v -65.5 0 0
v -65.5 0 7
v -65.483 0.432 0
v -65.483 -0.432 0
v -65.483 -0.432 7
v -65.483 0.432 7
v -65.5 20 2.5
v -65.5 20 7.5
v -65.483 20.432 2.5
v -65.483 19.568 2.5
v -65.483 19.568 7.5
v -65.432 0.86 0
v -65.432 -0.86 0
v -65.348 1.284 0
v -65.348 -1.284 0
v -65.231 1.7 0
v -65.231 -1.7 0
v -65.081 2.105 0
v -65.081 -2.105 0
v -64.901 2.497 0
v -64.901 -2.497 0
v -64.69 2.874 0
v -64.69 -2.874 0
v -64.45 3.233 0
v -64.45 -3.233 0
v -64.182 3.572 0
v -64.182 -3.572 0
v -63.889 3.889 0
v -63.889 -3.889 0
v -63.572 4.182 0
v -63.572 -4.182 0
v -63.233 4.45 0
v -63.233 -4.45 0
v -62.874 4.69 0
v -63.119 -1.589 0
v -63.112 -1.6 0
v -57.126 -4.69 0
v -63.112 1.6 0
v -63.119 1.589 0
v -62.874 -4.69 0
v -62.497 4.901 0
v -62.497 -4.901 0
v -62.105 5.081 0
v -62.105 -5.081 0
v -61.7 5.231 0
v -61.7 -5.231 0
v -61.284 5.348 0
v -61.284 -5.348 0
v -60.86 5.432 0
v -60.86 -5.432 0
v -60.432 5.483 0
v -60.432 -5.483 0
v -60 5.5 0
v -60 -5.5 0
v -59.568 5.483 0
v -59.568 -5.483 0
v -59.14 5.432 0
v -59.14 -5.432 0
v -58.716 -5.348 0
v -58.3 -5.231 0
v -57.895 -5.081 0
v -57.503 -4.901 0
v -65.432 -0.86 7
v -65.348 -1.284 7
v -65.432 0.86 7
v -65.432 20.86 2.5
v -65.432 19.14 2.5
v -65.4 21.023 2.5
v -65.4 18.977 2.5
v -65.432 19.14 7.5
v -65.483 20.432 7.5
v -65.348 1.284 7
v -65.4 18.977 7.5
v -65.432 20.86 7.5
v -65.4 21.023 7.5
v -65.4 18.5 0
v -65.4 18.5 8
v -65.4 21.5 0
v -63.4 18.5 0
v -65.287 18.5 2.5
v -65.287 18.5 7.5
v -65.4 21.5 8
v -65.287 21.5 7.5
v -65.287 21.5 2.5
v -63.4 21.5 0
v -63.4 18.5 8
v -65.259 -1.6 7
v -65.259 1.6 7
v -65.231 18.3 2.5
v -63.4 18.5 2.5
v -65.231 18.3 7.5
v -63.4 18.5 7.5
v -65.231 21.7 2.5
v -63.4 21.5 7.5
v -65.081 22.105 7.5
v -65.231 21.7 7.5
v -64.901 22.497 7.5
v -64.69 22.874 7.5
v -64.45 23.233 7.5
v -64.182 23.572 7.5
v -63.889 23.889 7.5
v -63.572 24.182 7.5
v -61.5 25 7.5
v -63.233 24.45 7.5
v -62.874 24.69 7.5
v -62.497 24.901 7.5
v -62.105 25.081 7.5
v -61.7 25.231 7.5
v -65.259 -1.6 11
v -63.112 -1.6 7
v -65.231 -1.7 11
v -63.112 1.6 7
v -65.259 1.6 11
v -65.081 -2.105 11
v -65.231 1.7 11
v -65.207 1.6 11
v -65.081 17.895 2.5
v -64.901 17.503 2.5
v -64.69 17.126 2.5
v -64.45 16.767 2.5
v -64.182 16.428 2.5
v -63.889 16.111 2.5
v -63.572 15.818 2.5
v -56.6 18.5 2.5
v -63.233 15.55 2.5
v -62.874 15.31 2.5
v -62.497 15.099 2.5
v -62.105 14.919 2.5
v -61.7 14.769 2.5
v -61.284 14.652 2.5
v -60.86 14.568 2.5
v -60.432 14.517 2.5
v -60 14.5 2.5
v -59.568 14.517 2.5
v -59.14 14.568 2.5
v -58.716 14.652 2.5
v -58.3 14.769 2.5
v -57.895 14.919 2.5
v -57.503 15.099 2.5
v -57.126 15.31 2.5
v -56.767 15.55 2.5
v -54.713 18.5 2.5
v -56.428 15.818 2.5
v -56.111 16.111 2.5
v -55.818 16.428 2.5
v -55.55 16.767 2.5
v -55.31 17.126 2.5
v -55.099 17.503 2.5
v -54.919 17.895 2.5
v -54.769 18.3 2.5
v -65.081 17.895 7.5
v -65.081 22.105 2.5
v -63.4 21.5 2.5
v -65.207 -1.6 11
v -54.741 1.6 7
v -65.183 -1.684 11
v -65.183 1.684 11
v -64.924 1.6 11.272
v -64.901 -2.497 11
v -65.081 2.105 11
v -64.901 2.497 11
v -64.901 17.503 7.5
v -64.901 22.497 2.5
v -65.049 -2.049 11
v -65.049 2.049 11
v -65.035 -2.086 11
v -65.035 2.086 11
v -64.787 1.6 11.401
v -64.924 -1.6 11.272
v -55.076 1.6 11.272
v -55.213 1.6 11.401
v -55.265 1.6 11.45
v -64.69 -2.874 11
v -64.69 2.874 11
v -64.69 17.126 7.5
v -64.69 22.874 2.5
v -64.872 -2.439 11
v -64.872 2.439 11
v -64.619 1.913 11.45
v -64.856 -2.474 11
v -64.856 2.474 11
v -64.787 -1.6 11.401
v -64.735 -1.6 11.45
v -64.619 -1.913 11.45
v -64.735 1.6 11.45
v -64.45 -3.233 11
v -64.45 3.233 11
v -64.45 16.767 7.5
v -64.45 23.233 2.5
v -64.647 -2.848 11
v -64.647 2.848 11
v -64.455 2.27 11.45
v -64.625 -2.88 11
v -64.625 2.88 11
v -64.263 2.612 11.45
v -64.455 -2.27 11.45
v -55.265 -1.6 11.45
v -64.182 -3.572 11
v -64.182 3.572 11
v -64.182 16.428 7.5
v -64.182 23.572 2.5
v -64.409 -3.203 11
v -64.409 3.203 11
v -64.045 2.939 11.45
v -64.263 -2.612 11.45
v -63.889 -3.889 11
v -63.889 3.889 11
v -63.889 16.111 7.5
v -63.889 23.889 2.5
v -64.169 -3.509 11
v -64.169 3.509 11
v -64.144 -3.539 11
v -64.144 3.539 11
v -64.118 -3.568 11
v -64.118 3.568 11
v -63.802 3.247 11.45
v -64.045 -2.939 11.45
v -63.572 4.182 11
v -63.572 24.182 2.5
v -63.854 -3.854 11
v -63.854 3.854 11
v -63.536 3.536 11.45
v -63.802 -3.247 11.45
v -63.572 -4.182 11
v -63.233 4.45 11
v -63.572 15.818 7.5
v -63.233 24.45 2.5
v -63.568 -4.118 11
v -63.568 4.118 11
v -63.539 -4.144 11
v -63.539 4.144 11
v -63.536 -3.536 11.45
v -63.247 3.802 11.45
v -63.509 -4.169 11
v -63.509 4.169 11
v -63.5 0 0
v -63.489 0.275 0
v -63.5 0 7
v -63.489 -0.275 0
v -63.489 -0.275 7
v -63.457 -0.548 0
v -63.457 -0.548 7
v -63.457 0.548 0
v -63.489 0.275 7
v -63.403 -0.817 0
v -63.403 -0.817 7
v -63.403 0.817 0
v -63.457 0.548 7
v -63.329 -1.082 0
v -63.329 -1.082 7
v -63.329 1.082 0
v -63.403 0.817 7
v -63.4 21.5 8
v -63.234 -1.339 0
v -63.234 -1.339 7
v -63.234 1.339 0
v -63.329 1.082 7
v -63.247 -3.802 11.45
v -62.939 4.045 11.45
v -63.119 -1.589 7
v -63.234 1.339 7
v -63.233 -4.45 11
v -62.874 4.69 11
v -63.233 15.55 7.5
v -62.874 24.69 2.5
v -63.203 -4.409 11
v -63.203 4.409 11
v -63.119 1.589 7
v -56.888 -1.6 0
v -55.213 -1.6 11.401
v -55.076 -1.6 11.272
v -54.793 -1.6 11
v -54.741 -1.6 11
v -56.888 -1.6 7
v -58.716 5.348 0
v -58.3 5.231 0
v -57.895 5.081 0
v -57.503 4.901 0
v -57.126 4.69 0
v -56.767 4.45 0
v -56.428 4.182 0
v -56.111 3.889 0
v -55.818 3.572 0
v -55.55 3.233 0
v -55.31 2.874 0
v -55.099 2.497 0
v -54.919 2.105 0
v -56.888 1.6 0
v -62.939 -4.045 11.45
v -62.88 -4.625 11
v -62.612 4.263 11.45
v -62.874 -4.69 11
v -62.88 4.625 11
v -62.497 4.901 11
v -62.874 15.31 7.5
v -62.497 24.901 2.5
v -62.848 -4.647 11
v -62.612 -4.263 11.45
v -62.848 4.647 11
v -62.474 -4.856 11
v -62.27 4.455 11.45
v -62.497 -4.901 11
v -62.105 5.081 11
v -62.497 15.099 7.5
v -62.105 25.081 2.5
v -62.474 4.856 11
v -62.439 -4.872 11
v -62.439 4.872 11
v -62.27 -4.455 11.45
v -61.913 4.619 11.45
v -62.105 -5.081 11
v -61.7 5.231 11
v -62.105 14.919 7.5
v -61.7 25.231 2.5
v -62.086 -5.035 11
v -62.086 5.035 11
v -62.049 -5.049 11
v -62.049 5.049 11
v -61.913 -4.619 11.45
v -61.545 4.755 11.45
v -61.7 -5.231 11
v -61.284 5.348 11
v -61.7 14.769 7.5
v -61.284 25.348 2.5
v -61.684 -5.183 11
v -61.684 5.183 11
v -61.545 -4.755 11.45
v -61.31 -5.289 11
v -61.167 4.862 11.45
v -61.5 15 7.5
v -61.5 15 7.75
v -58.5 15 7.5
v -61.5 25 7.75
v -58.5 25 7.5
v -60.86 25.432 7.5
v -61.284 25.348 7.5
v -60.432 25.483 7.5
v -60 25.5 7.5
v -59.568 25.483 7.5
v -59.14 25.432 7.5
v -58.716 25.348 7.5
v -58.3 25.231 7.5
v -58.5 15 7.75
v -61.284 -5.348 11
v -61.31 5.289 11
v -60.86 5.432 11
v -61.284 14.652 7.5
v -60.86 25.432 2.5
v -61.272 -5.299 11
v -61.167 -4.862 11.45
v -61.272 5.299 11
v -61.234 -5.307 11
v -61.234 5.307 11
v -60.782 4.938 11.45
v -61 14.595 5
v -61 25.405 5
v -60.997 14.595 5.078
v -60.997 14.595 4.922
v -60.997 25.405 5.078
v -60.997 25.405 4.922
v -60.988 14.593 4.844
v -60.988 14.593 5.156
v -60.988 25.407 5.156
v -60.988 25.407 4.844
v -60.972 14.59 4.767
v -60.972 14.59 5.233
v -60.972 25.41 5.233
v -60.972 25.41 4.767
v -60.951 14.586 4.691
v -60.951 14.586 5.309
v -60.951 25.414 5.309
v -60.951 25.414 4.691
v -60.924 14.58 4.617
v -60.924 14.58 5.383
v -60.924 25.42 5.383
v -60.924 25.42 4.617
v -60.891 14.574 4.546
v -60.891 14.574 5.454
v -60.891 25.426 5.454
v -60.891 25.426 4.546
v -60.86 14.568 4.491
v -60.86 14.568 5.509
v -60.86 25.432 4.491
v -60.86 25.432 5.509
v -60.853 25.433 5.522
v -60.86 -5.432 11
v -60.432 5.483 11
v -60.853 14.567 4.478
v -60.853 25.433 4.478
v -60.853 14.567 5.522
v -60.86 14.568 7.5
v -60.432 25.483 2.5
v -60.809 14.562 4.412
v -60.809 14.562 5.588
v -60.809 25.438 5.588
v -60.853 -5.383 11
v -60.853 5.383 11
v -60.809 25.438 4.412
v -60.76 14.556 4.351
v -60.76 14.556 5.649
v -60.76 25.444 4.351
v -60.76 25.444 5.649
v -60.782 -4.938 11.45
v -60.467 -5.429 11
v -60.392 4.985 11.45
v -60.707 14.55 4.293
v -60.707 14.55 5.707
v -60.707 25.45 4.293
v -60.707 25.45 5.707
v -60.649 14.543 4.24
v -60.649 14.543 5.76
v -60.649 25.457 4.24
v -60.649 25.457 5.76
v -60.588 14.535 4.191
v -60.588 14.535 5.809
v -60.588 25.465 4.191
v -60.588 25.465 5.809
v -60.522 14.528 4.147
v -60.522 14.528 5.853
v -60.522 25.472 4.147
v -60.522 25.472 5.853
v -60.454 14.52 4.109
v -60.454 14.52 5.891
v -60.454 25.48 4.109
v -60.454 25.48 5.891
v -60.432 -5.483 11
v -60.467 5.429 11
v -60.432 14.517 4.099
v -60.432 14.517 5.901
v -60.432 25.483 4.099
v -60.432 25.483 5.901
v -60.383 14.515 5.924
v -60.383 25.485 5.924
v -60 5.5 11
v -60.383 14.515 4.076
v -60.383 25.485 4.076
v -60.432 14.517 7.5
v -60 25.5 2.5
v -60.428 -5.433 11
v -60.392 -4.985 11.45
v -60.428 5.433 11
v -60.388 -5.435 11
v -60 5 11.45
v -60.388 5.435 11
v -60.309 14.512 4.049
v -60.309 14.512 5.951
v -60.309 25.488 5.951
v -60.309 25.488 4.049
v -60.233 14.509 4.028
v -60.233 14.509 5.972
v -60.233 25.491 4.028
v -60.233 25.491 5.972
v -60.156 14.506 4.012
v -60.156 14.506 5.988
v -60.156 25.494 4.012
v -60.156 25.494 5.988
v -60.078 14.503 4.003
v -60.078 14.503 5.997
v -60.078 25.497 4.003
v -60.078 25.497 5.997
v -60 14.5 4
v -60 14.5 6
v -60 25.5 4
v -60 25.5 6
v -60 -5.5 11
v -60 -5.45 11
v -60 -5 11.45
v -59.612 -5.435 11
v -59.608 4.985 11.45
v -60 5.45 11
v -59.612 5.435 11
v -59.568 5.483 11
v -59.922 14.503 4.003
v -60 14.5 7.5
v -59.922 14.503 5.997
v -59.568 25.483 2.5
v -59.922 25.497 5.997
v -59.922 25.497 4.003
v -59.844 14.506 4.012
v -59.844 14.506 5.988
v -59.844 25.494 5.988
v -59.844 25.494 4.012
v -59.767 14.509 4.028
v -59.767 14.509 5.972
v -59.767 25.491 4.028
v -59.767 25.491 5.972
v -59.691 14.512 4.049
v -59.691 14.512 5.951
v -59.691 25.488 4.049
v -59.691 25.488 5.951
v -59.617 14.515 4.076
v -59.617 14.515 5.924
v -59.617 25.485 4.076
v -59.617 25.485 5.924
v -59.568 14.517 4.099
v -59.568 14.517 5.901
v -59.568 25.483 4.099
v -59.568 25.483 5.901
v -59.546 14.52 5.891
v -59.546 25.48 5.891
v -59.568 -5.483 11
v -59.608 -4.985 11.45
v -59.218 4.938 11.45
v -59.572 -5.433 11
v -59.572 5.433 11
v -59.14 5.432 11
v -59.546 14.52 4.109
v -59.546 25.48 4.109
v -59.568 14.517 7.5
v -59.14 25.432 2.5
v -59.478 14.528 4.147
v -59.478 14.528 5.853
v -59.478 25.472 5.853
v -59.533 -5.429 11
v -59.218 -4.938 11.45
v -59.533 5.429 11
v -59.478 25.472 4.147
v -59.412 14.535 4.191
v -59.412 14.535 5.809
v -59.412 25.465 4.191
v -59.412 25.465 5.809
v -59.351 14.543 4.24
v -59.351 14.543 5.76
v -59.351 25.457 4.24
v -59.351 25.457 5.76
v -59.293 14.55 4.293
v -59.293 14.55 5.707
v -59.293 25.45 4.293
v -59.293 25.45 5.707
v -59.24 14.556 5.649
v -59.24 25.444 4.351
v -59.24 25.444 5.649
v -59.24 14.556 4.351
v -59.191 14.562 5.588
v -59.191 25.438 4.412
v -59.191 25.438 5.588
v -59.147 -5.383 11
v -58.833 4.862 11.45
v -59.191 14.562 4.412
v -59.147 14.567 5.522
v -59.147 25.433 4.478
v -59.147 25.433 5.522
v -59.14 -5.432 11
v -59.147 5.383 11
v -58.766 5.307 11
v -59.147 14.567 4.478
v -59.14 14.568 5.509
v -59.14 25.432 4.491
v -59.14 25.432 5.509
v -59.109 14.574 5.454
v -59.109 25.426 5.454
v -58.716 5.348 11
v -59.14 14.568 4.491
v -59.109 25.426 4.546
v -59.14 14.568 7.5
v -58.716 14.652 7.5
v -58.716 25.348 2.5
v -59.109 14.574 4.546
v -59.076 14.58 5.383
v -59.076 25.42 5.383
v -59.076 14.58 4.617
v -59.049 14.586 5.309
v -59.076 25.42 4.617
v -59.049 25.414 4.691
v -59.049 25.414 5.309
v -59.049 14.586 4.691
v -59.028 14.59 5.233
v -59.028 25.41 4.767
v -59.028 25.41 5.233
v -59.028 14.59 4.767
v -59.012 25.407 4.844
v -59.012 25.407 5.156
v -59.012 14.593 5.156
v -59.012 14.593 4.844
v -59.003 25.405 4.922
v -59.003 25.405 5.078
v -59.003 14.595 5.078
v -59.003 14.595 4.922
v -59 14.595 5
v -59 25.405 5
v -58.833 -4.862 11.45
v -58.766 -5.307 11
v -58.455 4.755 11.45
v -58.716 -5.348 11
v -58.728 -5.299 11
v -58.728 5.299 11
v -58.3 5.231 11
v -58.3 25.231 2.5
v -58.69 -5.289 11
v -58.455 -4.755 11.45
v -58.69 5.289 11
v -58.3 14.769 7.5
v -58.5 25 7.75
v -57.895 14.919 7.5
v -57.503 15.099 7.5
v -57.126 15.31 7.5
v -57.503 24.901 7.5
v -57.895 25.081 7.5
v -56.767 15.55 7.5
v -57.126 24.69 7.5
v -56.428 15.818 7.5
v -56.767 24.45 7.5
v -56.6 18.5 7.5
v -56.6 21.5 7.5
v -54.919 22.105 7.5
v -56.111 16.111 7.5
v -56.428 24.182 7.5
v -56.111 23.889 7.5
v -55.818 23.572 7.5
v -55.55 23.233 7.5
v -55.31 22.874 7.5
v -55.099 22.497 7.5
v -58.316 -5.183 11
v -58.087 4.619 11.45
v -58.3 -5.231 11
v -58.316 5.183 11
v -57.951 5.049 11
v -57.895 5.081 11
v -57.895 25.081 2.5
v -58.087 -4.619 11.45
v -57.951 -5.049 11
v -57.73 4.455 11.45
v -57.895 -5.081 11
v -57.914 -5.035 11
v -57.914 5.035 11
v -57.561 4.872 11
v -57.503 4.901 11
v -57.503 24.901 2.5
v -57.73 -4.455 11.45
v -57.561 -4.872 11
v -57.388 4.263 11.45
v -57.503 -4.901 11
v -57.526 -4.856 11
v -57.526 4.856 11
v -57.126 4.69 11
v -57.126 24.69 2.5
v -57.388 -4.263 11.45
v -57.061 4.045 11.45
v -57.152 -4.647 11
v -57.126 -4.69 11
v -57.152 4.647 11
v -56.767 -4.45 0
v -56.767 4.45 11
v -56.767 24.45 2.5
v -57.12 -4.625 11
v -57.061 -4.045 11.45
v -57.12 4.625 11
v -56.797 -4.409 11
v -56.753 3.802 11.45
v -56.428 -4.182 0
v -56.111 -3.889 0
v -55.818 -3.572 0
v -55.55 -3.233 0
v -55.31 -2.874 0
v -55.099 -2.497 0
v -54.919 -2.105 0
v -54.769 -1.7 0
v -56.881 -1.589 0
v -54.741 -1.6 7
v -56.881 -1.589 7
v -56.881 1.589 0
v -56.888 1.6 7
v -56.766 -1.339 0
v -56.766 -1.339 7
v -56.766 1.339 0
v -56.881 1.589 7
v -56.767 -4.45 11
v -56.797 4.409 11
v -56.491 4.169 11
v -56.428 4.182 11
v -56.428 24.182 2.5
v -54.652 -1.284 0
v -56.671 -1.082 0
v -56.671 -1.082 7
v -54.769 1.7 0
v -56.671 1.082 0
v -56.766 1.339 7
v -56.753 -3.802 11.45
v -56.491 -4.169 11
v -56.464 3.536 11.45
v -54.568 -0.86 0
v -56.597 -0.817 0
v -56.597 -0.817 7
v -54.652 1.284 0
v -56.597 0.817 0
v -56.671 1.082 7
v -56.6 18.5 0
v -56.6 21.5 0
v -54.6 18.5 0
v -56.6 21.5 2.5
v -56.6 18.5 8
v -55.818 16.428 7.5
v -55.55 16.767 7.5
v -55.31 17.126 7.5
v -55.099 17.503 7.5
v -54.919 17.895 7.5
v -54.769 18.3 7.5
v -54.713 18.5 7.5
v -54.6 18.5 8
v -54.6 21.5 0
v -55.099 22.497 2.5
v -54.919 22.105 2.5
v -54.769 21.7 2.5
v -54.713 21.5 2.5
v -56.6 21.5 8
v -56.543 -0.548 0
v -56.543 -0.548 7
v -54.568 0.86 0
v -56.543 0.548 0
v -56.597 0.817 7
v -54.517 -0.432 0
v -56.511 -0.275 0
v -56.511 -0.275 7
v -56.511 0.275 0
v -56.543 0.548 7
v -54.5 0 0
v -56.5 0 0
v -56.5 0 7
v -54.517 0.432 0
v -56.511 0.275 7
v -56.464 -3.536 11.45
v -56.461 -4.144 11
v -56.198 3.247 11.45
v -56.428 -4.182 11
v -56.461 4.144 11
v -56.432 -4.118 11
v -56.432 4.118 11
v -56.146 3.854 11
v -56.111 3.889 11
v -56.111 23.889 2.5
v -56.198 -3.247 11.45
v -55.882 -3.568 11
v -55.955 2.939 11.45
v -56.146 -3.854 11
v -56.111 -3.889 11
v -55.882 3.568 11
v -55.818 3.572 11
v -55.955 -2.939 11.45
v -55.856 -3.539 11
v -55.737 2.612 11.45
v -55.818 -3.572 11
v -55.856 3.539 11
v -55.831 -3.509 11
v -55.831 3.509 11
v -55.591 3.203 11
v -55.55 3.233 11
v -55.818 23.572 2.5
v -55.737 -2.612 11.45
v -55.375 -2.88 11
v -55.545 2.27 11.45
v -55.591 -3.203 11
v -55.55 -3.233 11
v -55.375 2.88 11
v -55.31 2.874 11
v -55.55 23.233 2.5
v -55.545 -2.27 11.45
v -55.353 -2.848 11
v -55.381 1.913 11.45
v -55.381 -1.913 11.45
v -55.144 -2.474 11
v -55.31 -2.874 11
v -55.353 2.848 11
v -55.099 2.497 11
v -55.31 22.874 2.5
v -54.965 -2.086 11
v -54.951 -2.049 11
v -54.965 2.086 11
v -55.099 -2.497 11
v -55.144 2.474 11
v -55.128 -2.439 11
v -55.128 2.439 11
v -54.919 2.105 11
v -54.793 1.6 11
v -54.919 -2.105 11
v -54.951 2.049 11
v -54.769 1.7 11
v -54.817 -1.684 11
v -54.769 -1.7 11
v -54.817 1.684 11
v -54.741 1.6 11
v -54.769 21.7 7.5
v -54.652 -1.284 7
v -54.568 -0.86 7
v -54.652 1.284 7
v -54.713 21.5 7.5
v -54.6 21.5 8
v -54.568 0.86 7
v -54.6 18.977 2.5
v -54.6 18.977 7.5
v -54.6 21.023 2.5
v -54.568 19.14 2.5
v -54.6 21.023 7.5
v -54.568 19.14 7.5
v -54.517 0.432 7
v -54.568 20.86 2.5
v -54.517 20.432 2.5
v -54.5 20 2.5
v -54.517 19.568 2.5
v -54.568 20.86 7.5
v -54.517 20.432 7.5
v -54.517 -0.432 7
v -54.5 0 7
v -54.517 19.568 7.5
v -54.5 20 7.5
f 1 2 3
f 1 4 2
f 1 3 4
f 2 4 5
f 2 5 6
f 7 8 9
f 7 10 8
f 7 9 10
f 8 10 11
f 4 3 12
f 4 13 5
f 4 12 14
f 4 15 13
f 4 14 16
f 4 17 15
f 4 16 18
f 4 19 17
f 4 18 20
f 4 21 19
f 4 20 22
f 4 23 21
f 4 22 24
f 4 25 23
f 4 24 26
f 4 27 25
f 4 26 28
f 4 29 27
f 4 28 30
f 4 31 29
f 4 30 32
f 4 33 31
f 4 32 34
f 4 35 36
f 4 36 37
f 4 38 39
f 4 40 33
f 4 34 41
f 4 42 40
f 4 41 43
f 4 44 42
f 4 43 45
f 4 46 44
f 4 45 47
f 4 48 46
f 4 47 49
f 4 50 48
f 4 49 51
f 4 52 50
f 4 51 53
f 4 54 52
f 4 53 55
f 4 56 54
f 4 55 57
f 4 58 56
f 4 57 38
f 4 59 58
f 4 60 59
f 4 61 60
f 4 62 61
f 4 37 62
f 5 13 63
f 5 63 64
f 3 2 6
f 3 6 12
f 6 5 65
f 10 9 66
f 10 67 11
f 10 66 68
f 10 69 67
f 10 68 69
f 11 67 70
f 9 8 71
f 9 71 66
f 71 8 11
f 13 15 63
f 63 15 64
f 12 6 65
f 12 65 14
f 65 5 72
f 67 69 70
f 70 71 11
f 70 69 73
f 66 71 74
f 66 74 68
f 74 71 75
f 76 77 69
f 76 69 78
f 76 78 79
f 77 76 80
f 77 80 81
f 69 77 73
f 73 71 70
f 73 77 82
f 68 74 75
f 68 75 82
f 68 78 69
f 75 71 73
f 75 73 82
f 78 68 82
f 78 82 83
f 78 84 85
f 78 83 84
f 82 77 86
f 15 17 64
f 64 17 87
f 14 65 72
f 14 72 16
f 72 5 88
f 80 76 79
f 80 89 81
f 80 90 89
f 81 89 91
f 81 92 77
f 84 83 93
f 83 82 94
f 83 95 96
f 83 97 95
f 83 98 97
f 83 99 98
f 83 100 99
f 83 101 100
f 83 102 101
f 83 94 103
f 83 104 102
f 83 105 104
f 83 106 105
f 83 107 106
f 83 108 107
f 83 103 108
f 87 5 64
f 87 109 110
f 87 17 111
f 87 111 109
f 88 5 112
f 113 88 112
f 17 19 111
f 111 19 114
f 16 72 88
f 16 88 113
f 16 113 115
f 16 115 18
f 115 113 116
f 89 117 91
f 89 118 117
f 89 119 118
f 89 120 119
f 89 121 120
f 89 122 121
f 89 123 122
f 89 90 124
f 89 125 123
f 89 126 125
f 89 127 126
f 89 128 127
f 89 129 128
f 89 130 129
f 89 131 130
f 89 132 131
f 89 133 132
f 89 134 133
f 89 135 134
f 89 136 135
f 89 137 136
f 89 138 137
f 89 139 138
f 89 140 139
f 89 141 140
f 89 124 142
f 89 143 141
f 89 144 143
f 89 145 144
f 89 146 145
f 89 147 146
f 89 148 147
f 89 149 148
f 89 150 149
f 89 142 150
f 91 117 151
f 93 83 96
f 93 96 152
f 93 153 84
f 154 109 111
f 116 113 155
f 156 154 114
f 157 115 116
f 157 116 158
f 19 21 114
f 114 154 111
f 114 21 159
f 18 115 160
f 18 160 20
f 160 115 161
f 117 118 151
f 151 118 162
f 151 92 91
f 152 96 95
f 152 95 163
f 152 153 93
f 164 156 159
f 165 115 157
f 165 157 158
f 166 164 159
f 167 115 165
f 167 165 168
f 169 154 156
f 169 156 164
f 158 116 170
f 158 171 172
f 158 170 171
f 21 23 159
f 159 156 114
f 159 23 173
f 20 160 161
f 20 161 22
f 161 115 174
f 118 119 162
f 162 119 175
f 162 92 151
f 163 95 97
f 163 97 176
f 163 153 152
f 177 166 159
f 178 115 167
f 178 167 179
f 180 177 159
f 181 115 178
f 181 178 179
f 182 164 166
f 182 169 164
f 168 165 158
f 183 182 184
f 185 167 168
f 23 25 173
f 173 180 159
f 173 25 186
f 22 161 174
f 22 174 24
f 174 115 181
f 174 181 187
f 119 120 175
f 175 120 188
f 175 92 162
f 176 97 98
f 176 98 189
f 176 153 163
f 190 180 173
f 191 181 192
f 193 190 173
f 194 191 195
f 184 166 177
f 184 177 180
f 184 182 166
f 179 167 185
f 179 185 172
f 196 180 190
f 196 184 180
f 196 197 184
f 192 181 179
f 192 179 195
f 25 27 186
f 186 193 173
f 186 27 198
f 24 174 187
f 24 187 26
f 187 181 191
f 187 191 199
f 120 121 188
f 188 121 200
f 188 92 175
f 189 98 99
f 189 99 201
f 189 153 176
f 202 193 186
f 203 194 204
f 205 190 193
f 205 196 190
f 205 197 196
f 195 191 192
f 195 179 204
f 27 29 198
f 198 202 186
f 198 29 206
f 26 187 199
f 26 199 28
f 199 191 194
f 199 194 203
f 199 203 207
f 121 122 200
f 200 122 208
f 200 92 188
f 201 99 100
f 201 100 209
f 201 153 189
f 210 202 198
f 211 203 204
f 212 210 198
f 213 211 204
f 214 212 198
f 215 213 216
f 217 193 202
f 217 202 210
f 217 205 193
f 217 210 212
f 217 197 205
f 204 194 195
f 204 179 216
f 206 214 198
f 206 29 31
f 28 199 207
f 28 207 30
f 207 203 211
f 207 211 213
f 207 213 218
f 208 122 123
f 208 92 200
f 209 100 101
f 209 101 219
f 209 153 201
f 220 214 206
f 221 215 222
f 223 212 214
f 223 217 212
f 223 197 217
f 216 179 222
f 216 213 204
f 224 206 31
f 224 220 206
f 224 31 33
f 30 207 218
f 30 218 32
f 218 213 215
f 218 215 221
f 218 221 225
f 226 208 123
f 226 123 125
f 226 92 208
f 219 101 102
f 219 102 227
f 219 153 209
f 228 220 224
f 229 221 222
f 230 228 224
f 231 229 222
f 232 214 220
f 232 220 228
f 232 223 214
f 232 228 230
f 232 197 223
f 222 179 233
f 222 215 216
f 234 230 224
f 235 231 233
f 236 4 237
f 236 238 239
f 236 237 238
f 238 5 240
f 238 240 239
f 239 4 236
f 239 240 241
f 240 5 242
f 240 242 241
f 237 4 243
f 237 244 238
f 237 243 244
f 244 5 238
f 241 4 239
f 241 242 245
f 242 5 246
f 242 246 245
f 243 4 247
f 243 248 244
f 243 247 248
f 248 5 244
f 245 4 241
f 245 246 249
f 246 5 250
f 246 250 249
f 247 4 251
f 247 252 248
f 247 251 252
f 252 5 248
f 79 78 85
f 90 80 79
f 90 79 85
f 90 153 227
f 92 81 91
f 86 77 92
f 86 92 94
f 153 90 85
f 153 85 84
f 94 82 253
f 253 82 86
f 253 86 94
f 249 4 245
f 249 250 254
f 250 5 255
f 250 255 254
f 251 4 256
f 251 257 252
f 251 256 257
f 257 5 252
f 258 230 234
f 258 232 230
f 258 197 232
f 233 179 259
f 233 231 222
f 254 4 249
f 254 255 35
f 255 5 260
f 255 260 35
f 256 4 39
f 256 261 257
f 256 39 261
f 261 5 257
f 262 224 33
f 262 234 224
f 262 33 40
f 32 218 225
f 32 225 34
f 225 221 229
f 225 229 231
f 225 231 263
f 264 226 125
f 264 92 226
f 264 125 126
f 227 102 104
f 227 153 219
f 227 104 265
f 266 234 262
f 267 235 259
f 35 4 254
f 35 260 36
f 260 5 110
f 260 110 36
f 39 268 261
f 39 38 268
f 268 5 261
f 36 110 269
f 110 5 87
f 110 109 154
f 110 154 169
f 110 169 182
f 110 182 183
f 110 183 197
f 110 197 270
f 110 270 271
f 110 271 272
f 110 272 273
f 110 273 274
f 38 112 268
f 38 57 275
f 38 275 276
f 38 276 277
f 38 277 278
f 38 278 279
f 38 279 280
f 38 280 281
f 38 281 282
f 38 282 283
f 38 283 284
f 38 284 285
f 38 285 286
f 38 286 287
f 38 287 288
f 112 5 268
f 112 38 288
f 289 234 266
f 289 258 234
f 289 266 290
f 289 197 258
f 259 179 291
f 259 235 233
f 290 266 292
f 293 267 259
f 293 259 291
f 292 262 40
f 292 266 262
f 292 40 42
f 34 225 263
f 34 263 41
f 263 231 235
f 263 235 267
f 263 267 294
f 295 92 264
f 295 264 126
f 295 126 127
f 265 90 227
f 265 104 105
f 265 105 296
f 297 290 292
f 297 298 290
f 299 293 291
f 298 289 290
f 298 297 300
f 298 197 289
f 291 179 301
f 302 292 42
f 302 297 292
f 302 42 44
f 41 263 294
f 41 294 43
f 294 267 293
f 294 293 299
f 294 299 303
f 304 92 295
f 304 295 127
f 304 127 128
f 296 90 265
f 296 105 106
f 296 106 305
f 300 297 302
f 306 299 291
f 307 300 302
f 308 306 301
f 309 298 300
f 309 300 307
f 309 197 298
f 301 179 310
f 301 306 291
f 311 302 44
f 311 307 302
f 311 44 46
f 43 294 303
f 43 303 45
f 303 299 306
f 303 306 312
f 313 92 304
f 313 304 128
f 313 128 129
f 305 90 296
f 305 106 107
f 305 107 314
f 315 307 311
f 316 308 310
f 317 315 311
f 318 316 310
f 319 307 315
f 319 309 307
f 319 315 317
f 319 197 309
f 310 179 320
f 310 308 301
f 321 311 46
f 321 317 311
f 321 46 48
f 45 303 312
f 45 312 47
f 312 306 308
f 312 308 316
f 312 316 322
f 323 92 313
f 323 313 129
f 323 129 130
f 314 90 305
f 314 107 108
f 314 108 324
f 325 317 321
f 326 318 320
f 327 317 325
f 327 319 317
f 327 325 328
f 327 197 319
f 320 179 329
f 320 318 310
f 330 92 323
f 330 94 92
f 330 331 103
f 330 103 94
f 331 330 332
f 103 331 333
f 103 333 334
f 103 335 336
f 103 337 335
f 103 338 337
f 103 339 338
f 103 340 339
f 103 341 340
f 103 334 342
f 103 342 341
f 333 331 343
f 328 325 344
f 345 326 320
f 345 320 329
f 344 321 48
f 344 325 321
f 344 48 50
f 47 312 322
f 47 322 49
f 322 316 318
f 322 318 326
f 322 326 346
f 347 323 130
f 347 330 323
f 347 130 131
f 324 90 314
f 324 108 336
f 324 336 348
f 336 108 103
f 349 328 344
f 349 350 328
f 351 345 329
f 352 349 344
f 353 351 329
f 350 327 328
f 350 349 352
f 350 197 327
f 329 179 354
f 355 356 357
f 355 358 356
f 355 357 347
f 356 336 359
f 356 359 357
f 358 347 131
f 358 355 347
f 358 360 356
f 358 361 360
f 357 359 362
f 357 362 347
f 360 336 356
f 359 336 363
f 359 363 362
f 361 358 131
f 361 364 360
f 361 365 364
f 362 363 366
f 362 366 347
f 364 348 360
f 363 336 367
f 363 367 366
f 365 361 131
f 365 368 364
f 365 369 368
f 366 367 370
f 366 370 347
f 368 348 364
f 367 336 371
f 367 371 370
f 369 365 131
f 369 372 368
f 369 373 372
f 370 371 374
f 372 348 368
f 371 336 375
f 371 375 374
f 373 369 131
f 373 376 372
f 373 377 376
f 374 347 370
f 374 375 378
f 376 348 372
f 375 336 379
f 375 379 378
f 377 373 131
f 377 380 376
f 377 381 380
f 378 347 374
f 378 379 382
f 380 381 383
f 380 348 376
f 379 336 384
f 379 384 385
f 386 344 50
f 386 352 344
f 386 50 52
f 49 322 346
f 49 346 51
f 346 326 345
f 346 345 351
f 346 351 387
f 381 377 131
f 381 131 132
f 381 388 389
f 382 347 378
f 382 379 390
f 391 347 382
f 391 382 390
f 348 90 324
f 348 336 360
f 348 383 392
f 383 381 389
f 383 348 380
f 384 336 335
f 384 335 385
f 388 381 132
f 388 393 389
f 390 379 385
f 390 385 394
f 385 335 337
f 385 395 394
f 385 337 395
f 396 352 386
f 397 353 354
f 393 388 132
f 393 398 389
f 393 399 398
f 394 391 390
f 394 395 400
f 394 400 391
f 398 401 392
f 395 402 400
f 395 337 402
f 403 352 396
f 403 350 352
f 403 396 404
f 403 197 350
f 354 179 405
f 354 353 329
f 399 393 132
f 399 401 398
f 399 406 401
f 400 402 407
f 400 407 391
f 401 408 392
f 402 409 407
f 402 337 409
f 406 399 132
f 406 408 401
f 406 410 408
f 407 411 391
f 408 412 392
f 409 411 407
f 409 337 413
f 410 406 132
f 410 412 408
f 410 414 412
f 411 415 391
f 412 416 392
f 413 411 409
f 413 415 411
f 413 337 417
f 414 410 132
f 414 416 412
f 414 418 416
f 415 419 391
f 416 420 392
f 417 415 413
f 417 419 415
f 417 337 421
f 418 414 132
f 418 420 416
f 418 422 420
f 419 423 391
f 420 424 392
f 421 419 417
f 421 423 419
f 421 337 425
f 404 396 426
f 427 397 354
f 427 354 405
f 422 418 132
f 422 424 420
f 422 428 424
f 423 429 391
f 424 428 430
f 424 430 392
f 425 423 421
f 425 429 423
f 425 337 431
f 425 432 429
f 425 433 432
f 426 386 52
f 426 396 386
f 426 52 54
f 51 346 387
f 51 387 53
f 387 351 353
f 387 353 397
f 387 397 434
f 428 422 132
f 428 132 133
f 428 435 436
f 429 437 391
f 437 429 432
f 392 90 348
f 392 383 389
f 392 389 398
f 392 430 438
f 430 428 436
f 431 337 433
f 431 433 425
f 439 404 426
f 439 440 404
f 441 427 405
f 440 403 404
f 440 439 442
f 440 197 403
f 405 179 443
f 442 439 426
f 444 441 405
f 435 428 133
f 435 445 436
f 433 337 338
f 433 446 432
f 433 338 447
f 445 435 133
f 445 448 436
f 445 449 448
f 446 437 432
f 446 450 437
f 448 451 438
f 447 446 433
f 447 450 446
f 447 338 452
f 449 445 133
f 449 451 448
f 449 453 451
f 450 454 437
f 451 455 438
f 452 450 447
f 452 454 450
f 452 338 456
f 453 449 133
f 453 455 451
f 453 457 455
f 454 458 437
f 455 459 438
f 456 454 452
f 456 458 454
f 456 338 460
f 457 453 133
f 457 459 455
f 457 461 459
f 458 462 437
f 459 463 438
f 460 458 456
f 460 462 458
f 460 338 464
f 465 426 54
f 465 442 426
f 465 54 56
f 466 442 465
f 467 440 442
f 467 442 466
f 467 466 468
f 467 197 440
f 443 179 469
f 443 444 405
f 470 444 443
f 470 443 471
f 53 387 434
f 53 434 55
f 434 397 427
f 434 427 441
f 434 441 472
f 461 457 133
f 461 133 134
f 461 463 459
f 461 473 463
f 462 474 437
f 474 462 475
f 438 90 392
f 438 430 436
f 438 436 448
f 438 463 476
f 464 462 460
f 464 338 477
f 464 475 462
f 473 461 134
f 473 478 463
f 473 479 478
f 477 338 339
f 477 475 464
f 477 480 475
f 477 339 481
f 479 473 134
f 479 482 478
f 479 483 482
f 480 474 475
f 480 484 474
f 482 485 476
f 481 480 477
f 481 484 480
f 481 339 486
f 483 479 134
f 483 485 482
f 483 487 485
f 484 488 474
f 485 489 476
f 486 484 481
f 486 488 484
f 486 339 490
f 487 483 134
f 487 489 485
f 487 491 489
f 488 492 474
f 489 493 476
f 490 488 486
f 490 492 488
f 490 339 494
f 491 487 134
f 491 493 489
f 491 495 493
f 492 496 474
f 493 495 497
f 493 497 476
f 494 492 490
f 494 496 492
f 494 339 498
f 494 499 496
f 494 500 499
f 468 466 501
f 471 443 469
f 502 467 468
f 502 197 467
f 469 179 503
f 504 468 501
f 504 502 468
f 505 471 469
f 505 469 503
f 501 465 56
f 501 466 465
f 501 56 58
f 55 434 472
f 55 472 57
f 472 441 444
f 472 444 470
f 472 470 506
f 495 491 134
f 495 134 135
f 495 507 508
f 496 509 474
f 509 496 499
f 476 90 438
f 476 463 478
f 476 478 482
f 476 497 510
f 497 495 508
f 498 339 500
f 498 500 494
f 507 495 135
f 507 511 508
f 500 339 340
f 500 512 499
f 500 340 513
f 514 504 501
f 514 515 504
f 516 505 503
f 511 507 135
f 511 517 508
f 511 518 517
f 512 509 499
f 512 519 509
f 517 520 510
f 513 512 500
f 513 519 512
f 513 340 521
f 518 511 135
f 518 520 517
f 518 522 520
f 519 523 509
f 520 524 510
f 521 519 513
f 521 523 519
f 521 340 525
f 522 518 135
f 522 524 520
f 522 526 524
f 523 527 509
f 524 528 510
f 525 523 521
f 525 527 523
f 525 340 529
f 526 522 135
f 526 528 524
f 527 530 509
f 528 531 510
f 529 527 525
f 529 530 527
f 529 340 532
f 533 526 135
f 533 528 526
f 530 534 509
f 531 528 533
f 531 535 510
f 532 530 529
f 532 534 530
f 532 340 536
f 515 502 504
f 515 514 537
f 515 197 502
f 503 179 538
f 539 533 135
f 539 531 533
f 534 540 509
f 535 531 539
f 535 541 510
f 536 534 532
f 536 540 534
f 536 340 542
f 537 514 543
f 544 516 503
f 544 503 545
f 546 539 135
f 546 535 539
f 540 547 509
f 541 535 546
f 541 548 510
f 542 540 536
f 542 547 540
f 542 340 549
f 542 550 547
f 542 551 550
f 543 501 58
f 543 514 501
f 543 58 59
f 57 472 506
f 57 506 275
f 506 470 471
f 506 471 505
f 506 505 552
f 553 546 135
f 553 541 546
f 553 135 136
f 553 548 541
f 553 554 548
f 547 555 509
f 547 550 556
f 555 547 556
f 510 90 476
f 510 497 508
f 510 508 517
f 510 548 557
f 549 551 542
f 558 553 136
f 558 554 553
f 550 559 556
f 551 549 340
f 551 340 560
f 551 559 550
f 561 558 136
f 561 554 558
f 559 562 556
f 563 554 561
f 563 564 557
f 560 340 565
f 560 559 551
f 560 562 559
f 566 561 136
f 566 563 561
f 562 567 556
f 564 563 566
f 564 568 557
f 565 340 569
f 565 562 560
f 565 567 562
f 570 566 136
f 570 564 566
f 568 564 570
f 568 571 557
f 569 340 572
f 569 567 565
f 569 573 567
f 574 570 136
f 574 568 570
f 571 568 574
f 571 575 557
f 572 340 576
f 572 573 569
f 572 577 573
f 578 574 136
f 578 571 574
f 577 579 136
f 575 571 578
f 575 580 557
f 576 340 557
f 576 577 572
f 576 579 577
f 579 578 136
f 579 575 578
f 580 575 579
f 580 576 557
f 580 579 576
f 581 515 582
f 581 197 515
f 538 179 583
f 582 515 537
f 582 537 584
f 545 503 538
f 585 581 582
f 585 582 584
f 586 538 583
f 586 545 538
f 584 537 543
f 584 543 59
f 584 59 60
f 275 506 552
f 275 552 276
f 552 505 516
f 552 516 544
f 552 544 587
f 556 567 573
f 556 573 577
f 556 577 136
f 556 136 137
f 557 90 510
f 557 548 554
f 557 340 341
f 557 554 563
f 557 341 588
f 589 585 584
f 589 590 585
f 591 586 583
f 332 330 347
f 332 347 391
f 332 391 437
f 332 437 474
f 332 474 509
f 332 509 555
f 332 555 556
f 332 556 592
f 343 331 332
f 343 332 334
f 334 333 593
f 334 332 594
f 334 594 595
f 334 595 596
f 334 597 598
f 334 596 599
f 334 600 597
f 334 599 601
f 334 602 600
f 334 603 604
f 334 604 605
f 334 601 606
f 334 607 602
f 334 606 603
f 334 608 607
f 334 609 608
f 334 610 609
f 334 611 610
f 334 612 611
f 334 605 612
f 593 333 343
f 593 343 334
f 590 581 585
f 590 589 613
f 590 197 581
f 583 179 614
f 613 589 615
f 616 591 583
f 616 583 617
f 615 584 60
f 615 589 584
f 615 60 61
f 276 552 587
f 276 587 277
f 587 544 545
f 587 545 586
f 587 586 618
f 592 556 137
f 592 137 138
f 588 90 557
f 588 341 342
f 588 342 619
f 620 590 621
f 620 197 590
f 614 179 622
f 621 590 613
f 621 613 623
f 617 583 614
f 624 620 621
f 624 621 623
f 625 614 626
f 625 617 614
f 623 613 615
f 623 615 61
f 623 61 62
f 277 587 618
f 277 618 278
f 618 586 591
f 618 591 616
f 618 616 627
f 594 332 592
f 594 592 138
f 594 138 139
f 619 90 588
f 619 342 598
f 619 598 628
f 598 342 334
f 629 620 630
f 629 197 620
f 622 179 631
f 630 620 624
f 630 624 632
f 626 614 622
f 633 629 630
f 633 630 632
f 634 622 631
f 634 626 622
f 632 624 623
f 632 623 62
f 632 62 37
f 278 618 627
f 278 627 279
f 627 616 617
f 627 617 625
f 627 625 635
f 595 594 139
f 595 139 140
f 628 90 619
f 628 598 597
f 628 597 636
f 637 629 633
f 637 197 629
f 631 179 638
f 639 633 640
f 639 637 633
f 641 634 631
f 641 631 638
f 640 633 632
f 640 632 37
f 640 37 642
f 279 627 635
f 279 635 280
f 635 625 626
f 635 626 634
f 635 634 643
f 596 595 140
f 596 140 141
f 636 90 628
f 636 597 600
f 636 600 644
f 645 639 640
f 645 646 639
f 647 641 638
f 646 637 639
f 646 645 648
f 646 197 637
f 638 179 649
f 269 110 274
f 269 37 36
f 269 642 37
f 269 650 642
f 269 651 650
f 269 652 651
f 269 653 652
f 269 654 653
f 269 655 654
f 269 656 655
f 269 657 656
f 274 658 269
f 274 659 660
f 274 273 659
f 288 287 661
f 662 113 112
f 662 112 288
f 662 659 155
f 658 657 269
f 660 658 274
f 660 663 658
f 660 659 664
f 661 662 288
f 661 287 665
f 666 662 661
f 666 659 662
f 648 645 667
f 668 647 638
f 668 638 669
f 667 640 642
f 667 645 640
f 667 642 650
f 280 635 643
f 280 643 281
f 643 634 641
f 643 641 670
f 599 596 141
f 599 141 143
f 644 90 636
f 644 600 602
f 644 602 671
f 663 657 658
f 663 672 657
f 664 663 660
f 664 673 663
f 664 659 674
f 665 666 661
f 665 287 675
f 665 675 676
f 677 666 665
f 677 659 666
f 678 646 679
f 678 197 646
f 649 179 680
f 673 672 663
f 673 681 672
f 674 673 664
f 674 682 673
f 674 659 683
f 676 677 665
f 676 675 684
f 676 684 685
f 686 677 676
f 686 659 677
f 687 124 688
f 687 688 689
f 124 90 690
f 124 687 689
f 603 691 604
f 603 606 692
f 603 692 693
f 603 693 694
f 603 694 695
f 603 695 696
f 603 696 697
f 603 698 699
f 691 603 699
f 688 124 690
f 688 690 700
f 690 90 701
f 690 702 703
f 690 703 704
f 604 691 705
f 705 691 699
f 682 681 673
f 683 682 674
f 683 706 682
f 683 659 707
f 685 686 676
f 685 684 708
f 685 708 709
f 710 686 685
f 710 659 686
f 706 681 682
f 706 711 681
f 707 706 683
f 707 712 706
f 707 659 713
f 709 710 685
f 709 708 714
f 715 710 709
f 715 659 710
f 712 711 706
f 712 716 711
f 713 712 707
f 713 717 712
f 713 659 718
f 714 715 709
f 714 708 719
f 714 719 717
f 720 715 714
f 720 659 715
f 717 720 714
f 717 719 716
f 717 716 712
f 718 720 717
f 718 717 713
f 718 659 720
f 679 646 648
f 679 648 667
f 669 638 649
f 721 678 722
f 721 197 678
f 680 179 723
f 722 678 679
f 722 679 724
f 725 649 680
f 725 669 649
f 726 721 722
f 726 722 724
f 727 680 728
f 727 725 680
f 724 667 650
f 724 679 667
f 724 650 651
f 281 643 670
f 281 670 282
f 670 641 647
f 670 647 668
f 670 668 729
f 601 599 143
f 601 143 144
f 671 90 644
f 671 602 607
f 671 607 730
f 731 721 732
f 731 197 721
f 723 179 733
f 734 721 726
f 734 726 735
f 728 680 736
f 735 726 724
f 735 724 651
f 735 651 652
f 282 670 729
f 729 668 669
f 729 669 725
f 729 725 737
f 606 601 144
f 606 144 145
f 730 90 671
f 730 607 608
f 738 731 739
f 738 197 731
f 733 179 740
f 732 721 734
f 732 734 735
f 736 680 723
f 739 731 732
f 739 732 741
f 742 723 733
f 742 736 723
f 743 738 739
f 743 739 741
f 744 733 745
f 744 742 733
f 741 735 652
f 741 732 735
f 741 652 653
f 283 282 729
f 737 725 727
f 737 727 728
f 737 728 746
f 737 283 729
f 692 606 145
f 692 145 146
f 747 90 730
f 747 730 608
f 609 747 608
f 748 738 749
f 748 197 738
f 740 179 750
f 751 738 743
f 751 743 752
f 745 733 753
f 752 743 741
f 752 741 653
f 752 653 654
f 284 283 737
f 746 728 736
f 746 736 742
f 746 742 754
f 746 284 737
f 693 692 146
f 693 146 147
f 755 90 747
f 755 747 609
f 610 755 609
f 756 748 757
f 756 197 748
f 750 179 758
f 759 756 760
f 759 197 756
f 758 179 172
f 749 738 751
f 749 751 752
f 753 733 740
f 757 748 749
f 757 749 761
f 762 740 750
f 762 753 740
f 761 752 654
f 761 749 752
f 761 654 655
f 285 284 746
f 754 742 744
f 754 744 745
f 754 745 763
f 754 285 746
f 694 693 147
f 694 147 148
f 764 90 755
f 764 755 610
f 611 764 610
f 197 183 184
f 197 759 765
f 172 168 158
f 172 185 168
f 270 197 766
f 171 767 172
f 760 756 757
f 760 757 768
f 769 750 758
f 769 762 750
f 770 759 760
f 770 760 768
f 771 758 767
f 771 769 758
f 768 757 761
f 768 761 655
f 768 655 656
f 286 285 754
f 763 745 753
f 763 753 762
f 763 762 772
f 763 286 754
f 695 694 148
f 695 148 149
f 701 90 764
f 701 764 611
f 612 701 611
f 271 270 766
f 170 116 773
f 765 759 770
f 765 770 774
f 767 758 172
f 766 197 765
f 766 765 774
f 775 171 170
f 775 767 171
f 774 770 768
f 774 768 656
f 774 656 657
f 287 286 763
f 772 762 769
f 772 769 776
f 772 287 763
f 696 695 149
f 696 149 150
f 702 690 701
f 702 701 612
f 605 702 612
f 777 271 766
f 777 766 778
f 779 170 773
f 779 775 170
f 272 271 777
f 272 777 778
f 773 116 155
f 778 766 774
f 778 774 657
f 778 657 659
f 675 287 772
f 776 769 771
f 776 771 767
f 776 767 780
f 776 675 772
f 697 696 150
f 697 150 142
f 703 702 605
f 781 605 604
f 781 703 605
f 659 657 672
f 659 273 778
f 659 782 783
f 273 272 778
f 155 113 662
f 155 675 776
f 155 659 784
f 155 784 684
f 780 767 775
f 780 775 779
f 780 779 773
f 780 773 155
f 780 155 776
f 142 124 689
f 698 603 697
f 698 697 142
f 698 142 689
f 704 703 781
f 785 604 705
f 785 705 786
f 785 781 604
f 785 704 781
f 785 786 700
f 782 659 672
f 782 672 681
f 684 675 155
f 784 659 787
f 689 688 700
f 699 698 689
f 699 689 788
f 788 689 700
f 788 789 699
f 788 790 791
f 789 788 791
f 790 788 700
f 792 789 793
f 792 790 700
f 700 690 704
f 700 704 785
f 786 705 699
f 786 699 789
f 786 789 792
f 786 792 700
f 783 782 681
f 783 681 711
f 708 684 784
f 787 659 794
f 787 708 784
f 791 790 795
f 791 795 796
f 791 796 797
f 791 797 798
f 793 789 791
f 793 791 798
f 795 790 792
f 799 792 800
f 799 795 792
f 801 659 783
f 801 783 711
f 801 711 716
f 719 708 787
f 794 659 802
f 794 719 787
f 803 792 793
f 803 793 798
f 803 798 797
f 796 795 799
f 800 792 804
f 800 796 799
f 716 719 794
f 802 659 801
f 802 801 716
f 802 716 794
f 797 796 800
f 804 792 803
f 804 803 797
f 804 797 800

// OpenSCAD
$fn = 80;

// Lock cadnas
translate([-60, 0, 0]) {
	difference() {
		union() {
			cylinder(r=5.5, h=11);
			translate([0, 0, 11.2]) {
				cylinder(r1=5.5, r2=5, h=0.5, center=true);
			}
		}
		difference() {
			cylinder(r=3.5, h=20, center=true);

			translate([0, 4.1, 5]) {
				cube(size=[20, 5, 20], center=true);
			}
			translate([0, -4.1, 5]) {
				cube(size=[20, 5, 20], center=true);
			}
		}
		translate([0, 0, 12]) {
			cube(size=[20, 3.2, 10], center=true);
		}
	}
}


// Cadnas key
translate([-60, 20, 5]) {
	difference() {
		union() {
			cylinder(r=5.5, h=5, center=true);
			translate([4.4, 0, -1]) {
				cube(size=[2, 3, 8], center=true);
			}
			translate([-4.4, 0, -1]) {
				cube(size=[2, 3, 8], center=true);
			}
			translate([0, 0, 2.5]) {
				cube(size=[3, 10, 0.5], center=true);
			}
		}
		translate([0, 0, 0]) {
			rotate([90, 0, 0]) {
				cylinder(r=1, h=15, center=true);
			}
		}
	}
}
